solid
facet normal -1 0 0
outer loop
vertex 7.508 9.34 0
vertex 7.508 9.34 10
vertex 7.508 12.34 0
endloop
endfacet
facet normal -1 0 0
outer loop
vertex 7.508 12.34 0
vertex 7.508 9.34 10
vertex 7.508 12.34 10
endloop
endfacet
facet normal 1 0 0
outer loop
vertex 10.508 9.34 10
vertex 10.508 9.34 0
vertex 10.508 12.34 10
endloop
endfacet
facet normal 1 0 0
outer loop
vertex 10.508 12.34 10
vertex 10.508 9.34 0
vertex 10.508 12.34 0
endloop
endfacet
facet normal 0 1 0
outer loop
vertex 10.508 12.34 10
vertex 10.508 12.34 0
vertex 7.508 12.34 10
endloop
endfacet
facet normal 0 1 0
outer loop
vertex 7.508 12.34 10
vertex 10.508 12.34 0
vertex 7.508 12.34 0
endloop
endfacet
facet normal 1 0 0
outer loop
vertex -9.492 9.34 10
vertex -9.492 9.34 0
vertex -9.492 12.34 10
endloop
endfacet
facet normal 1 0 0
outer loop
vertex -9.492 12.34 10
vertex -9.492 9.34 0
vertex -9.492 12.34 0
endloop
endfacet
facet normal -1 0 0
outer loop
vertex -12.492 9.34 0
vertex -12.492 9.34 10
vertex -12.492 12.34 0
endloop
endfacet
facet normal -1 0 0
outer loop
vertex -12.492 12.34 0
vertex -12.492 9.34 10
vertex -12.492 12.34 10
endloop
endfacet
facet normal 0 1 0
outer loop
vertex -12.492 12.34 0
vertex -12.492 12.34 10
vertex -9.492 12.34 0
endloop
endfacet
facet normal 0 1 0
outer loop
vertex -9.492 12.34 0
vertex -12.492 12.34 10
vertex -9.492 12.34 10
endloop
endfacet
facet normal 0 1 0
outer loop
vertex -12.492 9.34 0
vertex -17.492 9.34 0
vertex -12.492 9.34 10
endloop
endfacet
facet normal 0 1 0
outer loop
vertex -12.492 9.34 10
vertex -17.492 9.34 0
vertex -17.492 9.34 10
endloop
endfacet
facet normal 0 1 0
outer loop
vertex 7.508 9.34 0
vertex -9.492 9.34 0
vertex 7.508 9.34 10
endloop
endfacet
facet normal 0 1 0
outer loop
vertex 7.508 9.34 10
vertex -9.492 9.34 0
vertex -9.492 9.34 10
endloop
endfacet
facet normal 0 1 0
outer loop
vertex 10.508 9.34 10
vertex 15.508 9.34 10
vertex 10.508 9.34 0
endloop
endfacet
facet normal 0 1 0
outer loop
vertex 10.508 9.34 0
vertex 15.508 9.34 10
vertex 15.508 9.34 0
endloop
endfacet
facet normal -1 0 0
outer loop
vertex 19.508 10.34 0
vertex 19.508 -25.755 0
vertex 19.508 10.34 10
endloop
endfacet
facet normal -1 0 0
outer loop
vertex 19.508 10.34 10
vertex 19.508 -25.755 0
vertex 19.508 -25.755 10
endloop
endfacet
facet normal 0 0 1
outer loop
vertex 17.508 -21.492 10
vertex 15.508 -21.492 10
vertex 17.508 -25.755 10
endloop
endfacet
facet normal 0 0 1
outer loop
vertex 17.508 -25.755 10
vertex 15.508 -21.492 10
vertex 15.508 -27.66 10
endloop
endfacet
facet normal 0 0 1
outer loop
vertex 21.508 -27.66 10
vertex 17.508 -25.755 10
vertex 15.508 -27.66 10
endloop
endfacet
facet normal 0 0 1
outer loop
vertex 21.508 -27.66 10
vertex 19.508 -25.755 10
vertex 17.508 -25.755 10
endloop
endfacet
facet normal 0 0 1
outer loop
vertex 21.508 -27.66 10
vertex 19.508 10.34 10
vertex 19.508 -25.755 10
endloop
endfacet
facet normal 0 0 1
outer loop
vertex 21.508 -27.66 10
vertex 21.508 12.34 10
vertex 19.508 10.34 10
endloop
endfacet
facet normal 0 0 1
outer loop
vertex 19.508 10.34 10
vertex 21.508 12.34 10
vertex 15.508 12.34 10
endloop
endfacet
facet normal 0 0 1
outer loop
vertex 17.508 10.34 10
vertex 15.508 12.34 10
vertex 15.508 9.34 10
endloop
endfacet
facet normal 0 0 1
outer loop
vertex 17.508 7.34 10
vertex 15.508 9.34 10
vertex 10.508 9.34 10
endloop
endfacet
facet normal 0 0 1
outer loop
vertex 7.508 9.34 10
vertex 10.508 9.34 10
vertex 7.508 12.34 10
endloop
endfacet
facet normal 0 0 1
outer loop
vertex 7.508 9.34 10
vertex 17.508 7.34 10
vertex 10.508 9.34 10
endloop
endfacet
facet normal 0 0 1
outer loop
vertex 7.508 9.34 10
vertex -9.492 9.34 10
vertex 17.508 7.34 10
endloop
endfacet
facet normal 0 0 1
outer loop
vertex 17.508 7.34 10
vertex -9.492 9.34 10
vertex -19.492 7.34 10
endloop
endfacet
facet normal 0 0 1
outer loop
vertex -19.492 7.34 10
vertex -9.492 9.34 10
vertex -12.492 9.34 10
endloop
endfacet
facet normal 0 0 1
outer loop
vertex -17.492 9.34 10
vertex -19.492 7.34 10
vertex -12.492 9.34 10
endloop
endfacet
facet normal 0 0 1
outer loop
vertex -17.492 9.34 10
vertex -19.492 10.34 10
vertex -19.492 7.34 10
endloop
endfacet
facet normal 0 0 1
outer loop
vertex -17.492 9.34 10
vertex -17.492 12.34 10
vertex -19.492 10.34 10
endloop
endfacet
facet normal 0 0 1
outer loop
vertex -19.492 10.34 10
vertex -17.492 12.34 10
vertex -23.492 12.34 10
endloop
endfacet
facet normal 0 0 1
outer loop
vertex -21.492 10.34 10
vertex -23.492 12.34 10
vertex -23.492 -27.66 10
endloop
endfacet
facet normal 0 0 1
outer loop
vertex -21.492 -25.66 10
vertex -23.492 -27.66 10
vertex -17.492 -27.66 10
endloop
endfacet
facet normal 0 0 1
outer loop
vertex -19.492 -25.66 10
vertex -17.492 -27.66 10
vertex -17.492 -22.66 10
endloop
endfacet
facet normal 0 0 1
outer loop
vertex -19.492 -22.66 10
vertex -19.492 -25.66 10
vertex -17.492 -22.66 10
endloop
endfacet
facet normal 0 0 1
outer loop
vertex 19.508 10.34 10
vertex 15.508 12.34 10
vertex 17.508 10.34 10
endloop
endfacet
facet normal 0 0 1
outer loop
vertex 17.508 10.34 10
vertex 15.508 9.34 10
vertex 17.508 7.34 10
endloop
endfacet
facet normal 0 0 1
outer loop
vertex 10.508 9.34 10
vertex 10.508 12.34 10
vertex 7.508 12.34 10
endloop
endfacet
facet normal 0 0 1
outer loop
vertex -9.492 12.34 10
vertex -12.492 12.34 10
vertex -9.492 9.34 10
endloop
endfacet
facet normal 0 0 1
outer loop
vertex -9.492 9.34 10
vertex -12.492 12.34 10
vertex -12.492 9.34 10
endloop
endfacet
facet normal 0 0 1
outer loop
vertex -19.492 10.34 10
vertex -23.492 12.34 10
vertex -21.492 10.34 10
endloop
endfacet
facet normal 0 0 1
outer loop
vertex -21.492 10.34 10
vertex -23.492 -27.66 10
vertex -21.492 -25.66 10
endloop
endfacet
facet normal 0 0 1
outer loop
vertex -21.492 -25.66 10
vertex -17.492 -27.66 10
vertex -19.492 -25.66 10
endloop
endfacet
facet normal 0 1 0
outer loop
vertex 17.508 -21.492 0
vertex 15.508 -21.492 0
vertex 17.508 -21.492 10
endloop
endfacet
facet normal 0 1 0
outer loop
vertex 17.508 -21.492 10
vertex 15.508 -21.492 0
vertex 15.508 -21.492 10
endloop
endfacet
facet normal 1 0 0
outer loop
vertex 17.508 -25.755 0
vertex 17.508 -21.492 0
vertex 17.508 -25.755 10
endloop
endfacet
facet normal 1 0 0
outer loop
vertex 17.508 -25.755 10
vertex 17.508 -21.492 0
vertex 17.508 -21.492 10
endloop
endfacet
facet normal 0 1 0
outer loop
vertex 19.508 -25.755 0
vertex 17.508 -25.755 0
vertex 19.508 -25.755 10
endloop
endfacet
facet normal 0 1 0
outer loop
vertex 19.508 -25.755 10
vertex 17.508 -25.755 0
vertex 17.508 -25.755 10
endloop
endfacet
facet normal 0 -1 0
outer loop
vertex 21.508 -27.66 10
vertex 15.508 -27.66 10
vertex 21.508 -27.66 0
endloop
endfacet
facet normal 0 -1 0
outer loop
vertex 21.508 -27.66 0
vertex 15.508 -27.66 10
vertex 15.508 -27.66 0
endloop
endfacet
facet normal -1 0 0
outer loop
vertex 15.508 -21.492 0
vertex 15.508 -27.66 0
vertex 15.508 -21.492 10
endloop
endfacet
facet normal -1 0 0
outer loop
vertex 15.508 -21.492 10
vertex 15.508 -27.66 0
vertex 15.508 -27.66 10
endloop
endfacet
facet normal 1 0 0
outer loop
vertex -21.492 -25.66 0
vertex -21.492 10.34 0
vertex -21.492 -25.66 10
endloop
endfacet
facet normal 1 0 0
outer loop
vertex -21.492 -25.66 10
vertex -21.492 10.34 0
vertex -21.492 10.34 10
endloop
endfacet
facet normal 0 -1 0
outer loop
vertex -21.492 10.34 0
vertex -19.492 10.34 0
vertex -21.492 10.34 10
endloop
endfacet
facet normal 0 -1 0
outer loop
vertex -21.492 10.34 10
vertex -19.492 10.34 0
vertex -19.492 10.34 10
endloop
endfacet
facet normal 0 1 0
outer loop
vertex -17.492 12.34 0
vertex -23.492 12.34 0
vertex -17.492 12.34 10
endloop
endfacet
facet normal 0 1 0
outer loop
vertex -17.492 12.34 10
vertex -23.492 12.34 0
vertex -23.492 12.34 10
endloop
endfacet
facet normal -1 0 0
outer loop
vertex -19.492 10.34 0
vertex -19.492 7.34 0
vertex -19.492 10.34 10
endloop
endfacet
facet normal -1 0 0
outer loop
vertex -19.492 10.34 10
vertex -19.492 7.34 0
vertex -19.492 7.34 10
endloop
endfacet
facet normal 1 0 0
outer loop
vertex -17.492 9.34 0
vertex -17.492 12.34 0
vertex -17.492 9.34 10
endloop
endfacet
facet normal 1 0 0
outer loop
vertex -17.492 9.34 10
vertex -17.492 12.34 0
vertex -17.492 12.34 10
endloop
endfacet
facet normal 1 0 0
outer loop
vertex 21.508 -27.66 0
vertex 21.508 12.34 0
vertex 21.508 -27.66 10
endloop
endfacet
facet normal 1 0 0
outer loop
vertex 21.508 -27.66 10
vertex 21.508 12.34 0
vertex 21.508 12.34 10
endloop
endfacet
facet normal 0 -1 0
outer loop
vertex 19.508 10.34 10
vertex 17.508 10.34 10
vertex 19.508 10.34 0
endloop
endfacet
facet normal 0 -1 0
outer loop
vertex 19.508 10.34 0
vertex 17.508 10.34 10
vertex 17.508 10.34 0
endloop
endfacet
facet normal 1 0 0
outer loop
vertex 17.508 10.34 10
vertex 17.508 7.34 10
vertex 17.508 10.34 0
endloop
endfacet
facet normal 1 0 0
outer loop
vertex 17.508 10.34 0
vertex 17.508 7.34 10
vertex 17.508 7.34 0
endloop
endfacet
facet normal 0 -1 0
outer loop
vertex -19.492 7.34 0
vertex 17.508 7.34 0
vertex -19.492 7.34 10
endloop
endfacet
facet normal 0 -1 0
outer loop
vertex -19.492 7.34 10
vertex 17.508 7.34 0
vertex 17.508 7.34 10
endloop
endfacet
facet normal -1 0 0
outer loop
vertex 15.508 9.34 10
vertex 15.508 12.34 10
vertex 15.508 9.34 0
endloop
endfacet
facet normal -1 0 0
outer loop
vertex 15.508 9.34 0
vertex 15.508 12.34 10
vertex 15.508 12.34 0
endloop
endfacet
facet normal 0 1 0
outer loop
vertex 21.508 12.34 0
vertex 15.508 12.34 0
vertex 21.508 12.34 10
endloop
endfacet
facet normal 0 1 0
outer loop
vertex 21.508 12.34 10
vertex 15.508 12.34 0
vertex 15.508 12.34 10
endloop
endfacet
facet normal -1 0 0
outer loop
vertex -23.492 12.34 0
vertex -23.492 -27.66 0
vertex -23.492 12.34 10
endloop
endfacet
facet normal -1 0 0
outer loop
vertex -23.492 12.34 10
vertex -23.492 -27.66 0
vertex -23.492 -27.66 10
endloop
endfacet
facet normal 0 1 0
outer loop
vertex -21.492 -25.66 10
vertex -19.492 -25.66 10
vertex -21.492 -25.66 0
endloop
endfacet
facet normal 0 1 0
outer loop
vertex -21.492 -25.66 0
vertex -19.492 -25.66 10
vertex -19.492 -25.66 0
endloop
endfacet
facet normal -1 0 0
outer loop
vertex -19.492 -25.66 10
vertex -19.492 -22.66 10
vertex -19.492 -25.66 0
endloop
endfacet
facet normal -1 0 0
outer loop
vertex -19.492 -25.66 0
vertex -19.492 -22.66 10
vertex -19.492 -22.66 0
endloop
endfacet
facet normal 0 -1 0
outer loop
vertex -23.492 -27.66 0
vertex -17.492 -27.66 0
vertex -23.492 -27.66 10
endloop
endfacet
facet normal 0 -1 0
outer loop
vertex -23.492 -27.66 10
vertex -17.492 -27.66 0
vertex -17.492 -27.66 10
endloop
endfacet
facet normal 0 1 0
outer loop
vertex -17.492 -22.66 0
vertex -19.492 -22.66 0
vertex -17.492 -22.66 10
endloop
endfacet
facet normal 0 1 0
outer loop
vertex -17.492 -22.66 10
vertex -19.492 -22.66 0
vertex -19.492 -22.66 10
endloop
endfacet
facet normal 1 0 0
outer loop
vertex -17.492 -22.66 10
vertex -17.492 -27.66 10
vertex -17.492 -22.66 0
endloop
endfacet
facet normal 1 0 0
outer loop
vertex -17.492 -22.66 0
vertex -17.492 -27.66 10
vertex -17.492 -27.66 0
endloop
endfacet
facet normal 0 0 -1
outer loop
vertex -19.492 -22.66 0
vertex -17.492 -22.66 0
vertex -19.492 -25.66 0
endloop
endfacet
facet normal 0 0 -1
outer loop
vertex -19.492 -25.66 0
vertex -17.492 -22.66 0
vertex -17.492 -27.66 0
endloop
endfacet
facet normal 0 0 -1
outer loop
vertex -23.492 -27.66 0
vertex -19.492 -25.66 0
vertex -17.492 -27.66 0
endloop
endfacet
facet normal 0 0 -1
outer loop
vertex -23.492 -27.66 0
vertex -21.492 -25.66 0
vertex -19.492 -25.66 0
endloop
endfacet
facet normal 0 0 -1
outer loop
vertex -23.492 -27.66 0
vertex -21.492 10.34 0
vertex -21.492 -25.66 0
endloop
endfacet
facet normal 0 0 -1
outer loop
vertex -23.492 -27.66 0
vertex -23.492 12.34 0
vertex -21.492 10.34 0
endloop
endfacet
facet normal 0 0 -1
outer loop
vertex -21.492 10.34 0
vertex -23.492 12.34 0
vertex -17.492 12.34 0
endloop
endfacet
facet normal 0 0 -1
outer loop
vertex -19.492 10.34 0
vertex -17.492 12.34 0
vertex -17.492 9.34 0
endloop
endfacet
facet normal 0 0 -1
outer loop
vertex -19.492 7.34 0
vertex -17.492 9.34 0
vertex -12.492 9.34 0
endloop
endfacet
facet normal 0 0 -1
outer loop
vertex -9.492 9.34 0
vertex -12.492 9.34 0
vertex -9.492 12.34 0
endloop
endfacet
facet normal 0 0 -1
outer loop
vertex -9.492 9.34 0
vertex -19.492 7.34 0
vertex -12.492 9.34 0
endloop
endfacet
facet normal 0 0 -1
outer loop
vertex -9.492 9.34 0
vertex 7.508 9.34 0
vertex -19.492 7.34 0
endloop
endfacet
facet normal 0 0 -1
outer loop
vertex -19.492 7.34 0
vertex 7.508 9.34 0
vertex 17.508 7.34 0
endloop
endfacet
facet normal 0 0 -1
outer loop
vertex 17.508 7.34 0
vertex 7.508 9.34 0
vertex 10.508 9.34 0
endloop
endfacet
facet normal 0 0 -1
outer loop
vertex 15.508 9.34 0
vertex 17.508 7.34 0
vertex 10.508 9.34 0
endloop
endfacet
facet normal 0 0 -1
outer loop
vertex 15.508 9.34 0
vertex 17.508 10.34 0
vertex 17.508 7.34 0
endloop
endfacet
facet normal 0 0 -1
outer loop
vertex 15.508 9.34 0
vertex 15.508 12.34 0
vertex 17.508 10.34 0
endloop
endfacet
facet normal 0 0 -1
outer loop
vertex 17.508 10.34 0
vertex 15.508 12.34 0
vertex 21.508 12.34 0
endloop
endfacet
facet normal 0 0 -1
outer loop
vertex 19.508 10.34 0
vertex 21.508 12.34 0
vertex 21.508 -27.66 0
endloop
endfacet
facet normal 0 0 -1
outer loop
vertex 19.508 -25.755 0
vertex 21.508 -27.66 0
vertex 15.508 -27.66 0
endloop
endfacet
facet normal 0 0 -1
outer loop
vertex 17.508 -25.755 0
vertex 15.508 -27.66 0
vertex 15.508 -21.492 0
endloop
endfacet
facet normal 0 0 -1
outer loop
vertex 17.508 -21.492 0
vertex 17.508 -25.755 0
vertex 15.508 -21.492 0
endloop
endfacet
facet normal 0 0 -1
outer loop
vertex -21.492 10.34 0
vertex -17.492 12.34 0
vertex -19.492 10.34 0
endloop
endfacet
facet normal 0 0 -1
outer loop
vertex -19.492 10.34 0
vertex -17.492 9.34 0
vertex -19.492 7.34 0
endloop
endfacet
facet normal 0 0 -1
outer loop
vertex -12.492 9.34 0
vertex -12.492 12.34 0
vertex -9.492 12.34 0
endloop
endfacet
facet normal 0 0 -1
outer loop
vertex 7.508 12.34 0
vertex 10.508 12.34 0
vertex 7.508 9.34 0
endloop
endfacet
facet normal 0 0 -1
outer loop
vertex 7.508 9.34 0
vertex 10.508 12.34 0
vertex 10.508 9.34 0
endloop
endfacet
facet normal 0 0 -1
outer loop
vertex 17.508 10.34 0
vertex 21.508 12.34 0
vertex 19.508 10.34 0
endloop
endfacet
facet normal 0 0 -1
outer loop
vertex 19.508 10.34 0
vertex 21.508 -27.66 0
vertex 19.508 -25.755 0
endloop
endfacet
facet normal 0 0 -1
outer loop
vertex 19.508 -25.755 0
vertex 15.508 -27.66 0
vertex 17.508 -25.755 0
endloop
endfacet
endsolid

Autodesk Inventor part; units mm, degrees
ref_plane "YZ Plane" through (0, 0, 0) normal (1, 0, 0) x (0, 1, 0)
ref_plane "XZ Plane" through (0, 0, 0) normal (0, 1, 0) x (-1, 0, 0)
ref_plane "XY Plane" through (0, 0, 0) normal (0, 0, 1) x (1, 0, 0)
sketch "Sketch1" plane through (0, 0, 0) normal (0, 0, 1) x (1, 0, 0)
  line L0 (-23.4921, 12.3401) -> (-21.4921, 12.3401)
  line L1 (-21.4921, 12.3401) -> (-21.4921, -27.6599)
  line L2 (-21.4921, -27.6599) -> (-23.4921, -27.6599)
  line L3 (-23.4921, -27.6599) -> (-23.4921, 12.3401)
  line L4 (-23.4921, -27.6599) -> (-17.4921, -27.6599)
  line L5 (-17.4921, -27.6599) -> (-17.4921, -25.6599)
  line L6 (-17.4921, -25.6599) -> (-23.4921, -25.6599)
  line L7 (-23.4921, -25.6599) -> (-23.4921, -27.6599)
  line L8 (-17.4921, -27.6599) -> (-19.4921, -27.6599)
  line L9 (-19.4921, -27.6599) -> (-19.4921, -22.6599)
  line L10 (-19.4921, -22.6599) -> (-17.4921, -22.6599)
  line L11 (-17.4921, -22.6599) -> (-17.4921, -27.6599)
  line L12 (-23.4921, 12.3401) -> (-17.4921, 12.3401)
  line L13 (-17.4921, 12.3401) -> (-17.4921, 10.3401)
  line L14 (-17.4921, 10.3401) -> (-23.4921, 10.3401)
  line L15 (-23.4921, 10.3401) -> (-23.4921, 12.3401)
  line L16 (-17.4921, 12.3401) -> (-19.4921, 12.3401)
  line L17 (-19.4921, 12.3401) -> (-19.4921, 7.3401)
  line L18 (-19.4921, 7.3401) -> (-17.4921, 7.3401)
  line L19 (-17.4921, 7.3401) -> (-17.4921, 12.3401)
  line L20 (-19.4921, 9.3401) -> (17.5079, 9.3401)
  line L21 (17.5079, 9.3401) -> (17.5079, 7.3401)
  line L22 (17.5079, 7.3401) -> (-19.4921, 7.3401)
  line L23 (-19.4921, 7.3401) -> (-19.4921, 9.3401)
  line L24 (17.5079, 7.3401) -> (15.5079, 7.3401)
  line L25 (15.5079, 7.3401) -> (15.5079, 12.3401)
  line L26 (15.5079, 12.3401) -> (17.5079, 12.3401)
  line L27 (17.5079, 12.3401) -> (17.5079, 7.3401)
  line L28 (15.5079, 12.3401) -> (21.5079, 12.3401)
  line L29 (21.5079, 12.3401) -> (21.5079, 10.3401)
  line L30 (21.5079, 10.3401) -> (15.5079, 10.3401)
  line L31 (15.5079, 10.3401) -> (15.5079, 12.3401)
  line L32 (21.5079, 12.3401) -> (19.5079, 12.3401)
  line L33 (19.5079, 12.3401) -> (19.5079, -27.6599)
  line L34 (19.5079, -27.6599) -> (21.5079, -27.6599)
  line L35 (21.5079, -27.6599) -> (21.5079, 12.3401)
  line L36 (21.5079, -27.6599) -> (15.5079, -27.6599)
  line L37 (15.5079, -27.6599) -> (15.5079, -25.7551)
  line L38 (15.5079, -25.7551) -> (21.5079, -25.7551)
  line L39 (21.5079, -25.7551) -> (21.5079, -27.6599)
  line L40 (15.5079, -27.6599) -> (17.5079, -27.6599)
  line L41 (17.5079, -27.6599) -> (17.5079, -21.4921)
  line L42 (17.5079, -21.4921) -> (15.5079, -21.4921)
  line L43 (15.5079, -21.4921) -> (15.5079, -27.6599)
  point P0 (0, 0)
  dimension "d0" = 40
  dimension "d1" = 2
  dimension "d2" = 2
  dimension "d3" = 2
  dimension "d4" = 2
  dimension "d5" = 5
  dimension "d6" = 5
  dimension "d7" = 37
  dimension "d8" = 6
  dimension "d9" = 6
  dimension "d10" = 2
  dimension "d11" = 2
  dimension "d12" = 2
  dimension "d13" = 2
  dimension "d14" = 2
  dimension "d15" = 40
  dimension "d16" = 6
  dimension "d17" = 6
  dimension "d18" = 45
extrude "Extrusion1" add sketch "Sketch1" along normal blind 10
sketch "Sketch2" plane through (-17.4921, 9.3401, 0) normal (1, 0, 0) x (0, 0, -1)
  line L0 (-10, 0) -> (0, 0) projected
  line L1 (0, 3) -> (-10, 3) projected
  point P0 (0, -9.3401)
  dimension "d21" = 3
sketch "Sketch3" plane through (-17.4921, 9.3401, 0) normal (0, 1, 0) x (1, 0, 0)
  line L0 (-2, -10) -> (35, -10) projected
  line L1 (5, 0) -> (8, 0)
  line L2 (8, 0) -> (8, -10)
  line L3 (8, -10) -> (5, -10)
  line L4 (5, -10) -> (5, 0)
  line L5 (28, 0) -> (25, 0)
  line L6 (25, 0) -> (25, -10)
  line L7 (25, -10) -> (28, -10)
  line L8 (28, -10) -> (28, 0)
  line L9 (0, 0) -> (0, -10) projected
  line L10 (33, 0) -> (33, -10) projected
  point P0 (17.4921, 0)
  dimension "d22" = 5
  dimension "d23" = 5
  dimension "d24" = 3
  dimension "d25" = 3
extrude "Extrusion2" add sketch "Sketch3" along normal blind 3
properties part number "Up go er"
